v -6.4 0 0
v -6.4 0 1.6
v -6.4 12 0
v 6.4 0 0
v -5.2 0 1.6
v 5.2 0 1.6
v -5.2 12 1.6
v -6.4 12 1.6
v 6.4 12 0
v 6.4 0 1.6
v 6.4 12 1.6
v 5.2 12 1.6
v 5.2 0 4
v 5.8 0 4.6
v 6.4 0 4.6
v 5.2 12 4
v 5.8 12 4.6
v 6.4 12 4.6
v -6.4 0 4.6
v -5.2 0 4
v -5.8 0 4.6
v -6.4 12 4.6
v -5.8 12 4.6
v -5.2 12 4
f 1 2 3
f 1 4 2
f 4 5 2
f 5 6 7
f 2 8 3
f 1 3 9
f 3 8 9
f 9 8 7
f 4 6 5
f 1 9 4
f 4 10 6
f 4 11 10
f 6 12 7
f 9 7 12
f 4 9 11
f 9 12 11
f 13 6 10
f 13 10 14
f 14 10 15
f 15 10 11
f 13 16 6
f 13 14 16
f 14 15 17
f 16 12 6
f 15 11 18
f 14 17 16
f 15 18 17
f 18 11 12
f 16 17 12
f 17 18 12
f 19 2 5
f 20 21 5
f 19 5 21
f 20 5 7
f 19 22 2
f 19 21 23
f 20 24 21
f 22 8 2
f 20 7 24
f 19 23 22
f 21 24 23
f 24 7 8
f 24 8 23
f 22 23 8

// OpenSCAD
// ============================================================
// Zip tie corner block sleeve — a TPU liner that goes between
// one leg of a corner block and the flat it bears on
//
// The block is rigid, and everything it presses against is a
// painted, powder-coated or anodized flat. This sleeve is the
// soft layer in between: it grips, it spreads the tie's load
// over a surface that is never quite flat, and it is the part
// that takes the scuffing instead of the finish underneath.
//
// It is a channel with three sides. The wide one is the pad,
// and it is the whole working surface — it lies on the block's
// inner face and bears on the object. The other two are lips
// that fold over the block's top and bottom faces and hold the
// sleeve there.
//
// The lips are not the fastening. Glue is. What they do is
// stop the sleeve sliding around while the glue is wet, and
// square it up on the face by themselves so there is nothing
// to line up by eye — TPU is printed a shade narrow across the
// channel and snaps onto the block, and the glue cures with
// everything already where it belongs.
//
// ONE LEG, ONE SLEEVE. A block has two inner faces, so it
// takes two of these, and a set of four blocks takes eight.
// They are all the same part: the channel is symmetric top to
// bottom and uniform end to end, so it has no handedness and
// no right way up.
//
// The sleeve stands the block off the flats by its own pad
// thickness, which lifts the tie the same amount. Nothing in
// the block minds, and the corner relief only gains clearance,
// but the echoed standoff below is the one the assembled joint
// actually has.
//
// THE PARAMETERS UP TO THE SECOND BLOCK BELOW ARE COPIES.
// They have to hold the same values as the block's, or the
// channel will not fit the block it was cut for. Change one
// and change it in both files.
//
// Modeled in its print orientation: pad flat on the plate,
// lips pointing up.
//
// PRINT NOTES:
// - TPU, no supports needed. Print as modeled, pad down.
// - Nothing in the part hangs, at all. Every face is vertical,
//   on the plate, or facing up — including the two lead-in
//   bevels at the lips, which taper the tips at 45 deg and so
//   point upward rather than down.
// - Pad down puts the plate's finish on the face that bears on
//   the object and leaves the printed top surface as the glue
//   face, which is the way round that suits both.
// - The block's foot chamfer leaves a groove along one edge
//   between the pad and the block. That is a glue reservoir,
//   not a gap to close.
// - 3 perimeters. At this size the lips are perimeters the
//   whole way through, which is what makes them springy rather
//   than crumbly.
// - Cyanoacrylate or contact cement. TPU takes both; the rigid
//   filament under it is what decides.
// - This source emits ONE sleeve. Print eight for a set of
//   four blocks.
// ============================================================

// ===== MEASURE THESE ON YOUR ACTUAL ZIP TIE =====
// The same two measurements the block is built from, and they set the height
// of the channel here. Each names the caliper it needs by the size printed on
// the tool: a 6 in caliper stops at 150 mm, an 8 in at 200 mm, a 12 in at
// 300 mm

// Width of the tie's strap (mm) — outside jaws across the flat of the strap,
// 6 in caliper. Measure the plain strap well away from the head
tie_width = 4.8;

// Thickness of the tie's strap (mm) — outside jaws on the edge of the strap,
// over the ratchet teeth rather than between them, 6 in caliper
tie_thickness = 1.4;

// ===== THESE MUST MATCH THE BLOCK =====
// Copies of the block's knobs, carried here because the sleeve has to come out
// the same size as the block it wraps. Nothing below is a free choice: read
// each one off the block's source and keep the two files in step

tie_clearance = 0.6; // The block's channel clearance — feeds the block height
deck = 1.6; // The block's top and bottom skins — feeds the block height
leg_length = 14; // How far the block reaches along each flat
corner_relief_d = 4; // The block's corner relief — where its inner face starts
bend_radius = 10; // The block's bend radius — feeds the leg thickness
corner_web = 2.5; // The block's corner web — feeds the leg thickness
outer_wall = 2.4; // The block's outer flange — feeds the leg thickness
foot_chamfer = 0.6; // The block's foot chamfer — the groove it leaves is the glue reservoir

// ===== DECIDE THESE =====
// The sleeve's own shape

// Thickness of the pad (mm). All of the cushion and all of the grip is this
// number, and it is also how far the block is stood off the flat. It has to
// stay under the corner relief radius or the two sleeves on one block meet at
// the corner
pad_thickness = 1.6;

// How far each lip folds over the block's top and bottom faces (mm). Enough to
// hold the sleeve square while the glue goes off; it does not have to reach
// far, and it must not reach past the back of the leg
lip_reach = 3;

// Thickness of each lip (mm). Thin enough to spring over the block, thick
// enough not to tear off it
lip_thickness = 1.2;

// ===== TUNE THESE =====
block_pinch = 0.2; // SUBTRACTED from the block height (mm) — the channel is printed narrow and stretched on, so it holds itself in place before it is glued
lip_lead_in = 0.6; // Taper at the mouth of each lip (mm) — how far out of square the sleeve can start and still snap on

// ===== DERIVED =====
slot_w = tie_thickness + tie_clearance;
slot_h = tie_width + tie_clearance;
gable = slot_w;
relief_r = corner_relief_d / 2;

// The block's height, rebuilt from the same numbers the block builds it from.
// This is the dimension the channel has to match, so check it against the
// block's own echo
block_h = 2 * deck + slot_h + gable;

// The block's leg thickness, rebuilt the same way. The lips fold over this
// face, so it is the room they have
tie_offset = ((sqrt(2) - 1) * bend_radius + slot_w / 2 + relief_r + corner_web) / sqrt(2);
face_offset = tie_offset - slot_w / 2;
leg_thickness = face_offset + slot_w + outer_wall;

// Length of the block's inner face, from where the corner relief lets go of it
// to the end of the leg. The sleeve covers all of it and no more
sleeve_length = leg_length - relief_r;

// Clear width of the channel. Narrower than the block by the pinch, which is
// what the lips have to stretch over
gap = block_h - block_pinch;

sleeve_width = gap + 2 * lip_thickness;
sleeve_height = pad_thickness + lip_reach;

// Where the tie ends up once the sleeves are on: the block's own standoff plus
// the pad under it. This is the height the tie rides above each flat on the
// runs between blocks
sleeved_face_offset = face_offset + pad_thickness;

// What is left of the block's top and bottom faces outside each lip. The lip
// folds over the face, not around the back of it
lip_clearance = leg_thickness - lip_reach;

echo(str("sleeve = ", sleeve_width, " x ", sleeve_length, " x ", sleeve_height, " mm"));
echo(str("channel = ", gap, " mm clear, onto a ", block_h, " mm block"));
echo(str("pad covers ", sleeve_length, " mm of face, ", pad_thickness, " mm thick"));
echo(str("lip folds ", lip_reach, " mm over a ", leg_thickness, " mm leg, leaving ", lip_clearance, " mm"));
echo(str("glue groove along the chamfered edge = ", foot_chamfer, " mm"));
echo(str("tie stands off each flat by = ", sleeved_face_offset, " mm once sleeved"));
echo("print eight for a set of four blocks");

assert(pad_thickness > 0, "pad_thickness has to be positive — the pad is the whole point of the sleeve");
assert(pad_thickness < relief_r, "the two sleeves on one block would meet at the corner — thin the pad, or open corner_relief_d in both files");
assert(lip_thickness > 0, "lip_thickness has to be positive");
assert(lip_reach > 0, "lip_reach has to be positive — without the lips this is a shim, and it will not stay put");
assert(lip_clearance > 0, "the lips reach past the back of the leg — reduce lip_reach");
assert(gap > 0, "block_pinch has closed the channel — it cannot be more negative than the block is tall");
assert(block_pinch >= 0, "a negative block_pinch is slack, and slack is what the lips are there to remove — leave it at 0 for a slip fit");
assert(sleeve_length > 0, "the corner relief has eaten the whole inner face — lengthen leg_length or reduce corner_relief_d, in both files");
assert(lip_lead_in < lip_thickness, "the lead-in has tapered the lip to nothing — reduce lip_lead_in");
assert(lip_lead_in < lip_reach, "the lead-in is deeper than the lip is long — reduce lip_lead_in");

// The pad, in cross section: x is across the block's height, y is up out of
// the plate. It runs the full width so the lips land on it rather than beside
// it
module pad_2d() {
  translate([-sleeve_width / 2, 0])
    square([sleeve_width, pad_thickness]);
}

// One lip, in the same cross section. It starts at the plate and overlaps the
// pad rather than sitting on top of it, so the two meet in material. The
// lead-in takes the inner corner off the tip: it moves out and up by the same
// amount, so it is 45 deg whatever lip_lead_in is set to, and it funnels the
// mouth rather than closing it
module lip_2d() {
  inner = gap / 2;
  outer = gap / 2 + lip_thickness;
  polygon([
    [inner, 0],
    [outer, 0],
    [outer, sleeve_height],
    [inner + lip_lead_in, sleeve_height],
    [inner, sleeve_height - lip_lead_in],
  ]);
}

// Everything here is one cross section run the length of the block's inner
// face
module along_leg() {
  translate([0, sleeve_length, 0])
    rotate([90, 0, 0])
      linear_extrude(sleeve_length)
        children();
}

// Three sides: the pad, and a lip either side of it. The second lip is the
// first mirrored, so the channel cannot come out lopsided
module zip_tie_corner_block_sleeve() {
  union() {
    along_leg()
      pad_2d();
    along_leg()
      lip_2d();
    mirror([1, 0, 0])
      along_leg()
        lip_2d();
  }
}

zip_tie_corner_block_sleeve();
